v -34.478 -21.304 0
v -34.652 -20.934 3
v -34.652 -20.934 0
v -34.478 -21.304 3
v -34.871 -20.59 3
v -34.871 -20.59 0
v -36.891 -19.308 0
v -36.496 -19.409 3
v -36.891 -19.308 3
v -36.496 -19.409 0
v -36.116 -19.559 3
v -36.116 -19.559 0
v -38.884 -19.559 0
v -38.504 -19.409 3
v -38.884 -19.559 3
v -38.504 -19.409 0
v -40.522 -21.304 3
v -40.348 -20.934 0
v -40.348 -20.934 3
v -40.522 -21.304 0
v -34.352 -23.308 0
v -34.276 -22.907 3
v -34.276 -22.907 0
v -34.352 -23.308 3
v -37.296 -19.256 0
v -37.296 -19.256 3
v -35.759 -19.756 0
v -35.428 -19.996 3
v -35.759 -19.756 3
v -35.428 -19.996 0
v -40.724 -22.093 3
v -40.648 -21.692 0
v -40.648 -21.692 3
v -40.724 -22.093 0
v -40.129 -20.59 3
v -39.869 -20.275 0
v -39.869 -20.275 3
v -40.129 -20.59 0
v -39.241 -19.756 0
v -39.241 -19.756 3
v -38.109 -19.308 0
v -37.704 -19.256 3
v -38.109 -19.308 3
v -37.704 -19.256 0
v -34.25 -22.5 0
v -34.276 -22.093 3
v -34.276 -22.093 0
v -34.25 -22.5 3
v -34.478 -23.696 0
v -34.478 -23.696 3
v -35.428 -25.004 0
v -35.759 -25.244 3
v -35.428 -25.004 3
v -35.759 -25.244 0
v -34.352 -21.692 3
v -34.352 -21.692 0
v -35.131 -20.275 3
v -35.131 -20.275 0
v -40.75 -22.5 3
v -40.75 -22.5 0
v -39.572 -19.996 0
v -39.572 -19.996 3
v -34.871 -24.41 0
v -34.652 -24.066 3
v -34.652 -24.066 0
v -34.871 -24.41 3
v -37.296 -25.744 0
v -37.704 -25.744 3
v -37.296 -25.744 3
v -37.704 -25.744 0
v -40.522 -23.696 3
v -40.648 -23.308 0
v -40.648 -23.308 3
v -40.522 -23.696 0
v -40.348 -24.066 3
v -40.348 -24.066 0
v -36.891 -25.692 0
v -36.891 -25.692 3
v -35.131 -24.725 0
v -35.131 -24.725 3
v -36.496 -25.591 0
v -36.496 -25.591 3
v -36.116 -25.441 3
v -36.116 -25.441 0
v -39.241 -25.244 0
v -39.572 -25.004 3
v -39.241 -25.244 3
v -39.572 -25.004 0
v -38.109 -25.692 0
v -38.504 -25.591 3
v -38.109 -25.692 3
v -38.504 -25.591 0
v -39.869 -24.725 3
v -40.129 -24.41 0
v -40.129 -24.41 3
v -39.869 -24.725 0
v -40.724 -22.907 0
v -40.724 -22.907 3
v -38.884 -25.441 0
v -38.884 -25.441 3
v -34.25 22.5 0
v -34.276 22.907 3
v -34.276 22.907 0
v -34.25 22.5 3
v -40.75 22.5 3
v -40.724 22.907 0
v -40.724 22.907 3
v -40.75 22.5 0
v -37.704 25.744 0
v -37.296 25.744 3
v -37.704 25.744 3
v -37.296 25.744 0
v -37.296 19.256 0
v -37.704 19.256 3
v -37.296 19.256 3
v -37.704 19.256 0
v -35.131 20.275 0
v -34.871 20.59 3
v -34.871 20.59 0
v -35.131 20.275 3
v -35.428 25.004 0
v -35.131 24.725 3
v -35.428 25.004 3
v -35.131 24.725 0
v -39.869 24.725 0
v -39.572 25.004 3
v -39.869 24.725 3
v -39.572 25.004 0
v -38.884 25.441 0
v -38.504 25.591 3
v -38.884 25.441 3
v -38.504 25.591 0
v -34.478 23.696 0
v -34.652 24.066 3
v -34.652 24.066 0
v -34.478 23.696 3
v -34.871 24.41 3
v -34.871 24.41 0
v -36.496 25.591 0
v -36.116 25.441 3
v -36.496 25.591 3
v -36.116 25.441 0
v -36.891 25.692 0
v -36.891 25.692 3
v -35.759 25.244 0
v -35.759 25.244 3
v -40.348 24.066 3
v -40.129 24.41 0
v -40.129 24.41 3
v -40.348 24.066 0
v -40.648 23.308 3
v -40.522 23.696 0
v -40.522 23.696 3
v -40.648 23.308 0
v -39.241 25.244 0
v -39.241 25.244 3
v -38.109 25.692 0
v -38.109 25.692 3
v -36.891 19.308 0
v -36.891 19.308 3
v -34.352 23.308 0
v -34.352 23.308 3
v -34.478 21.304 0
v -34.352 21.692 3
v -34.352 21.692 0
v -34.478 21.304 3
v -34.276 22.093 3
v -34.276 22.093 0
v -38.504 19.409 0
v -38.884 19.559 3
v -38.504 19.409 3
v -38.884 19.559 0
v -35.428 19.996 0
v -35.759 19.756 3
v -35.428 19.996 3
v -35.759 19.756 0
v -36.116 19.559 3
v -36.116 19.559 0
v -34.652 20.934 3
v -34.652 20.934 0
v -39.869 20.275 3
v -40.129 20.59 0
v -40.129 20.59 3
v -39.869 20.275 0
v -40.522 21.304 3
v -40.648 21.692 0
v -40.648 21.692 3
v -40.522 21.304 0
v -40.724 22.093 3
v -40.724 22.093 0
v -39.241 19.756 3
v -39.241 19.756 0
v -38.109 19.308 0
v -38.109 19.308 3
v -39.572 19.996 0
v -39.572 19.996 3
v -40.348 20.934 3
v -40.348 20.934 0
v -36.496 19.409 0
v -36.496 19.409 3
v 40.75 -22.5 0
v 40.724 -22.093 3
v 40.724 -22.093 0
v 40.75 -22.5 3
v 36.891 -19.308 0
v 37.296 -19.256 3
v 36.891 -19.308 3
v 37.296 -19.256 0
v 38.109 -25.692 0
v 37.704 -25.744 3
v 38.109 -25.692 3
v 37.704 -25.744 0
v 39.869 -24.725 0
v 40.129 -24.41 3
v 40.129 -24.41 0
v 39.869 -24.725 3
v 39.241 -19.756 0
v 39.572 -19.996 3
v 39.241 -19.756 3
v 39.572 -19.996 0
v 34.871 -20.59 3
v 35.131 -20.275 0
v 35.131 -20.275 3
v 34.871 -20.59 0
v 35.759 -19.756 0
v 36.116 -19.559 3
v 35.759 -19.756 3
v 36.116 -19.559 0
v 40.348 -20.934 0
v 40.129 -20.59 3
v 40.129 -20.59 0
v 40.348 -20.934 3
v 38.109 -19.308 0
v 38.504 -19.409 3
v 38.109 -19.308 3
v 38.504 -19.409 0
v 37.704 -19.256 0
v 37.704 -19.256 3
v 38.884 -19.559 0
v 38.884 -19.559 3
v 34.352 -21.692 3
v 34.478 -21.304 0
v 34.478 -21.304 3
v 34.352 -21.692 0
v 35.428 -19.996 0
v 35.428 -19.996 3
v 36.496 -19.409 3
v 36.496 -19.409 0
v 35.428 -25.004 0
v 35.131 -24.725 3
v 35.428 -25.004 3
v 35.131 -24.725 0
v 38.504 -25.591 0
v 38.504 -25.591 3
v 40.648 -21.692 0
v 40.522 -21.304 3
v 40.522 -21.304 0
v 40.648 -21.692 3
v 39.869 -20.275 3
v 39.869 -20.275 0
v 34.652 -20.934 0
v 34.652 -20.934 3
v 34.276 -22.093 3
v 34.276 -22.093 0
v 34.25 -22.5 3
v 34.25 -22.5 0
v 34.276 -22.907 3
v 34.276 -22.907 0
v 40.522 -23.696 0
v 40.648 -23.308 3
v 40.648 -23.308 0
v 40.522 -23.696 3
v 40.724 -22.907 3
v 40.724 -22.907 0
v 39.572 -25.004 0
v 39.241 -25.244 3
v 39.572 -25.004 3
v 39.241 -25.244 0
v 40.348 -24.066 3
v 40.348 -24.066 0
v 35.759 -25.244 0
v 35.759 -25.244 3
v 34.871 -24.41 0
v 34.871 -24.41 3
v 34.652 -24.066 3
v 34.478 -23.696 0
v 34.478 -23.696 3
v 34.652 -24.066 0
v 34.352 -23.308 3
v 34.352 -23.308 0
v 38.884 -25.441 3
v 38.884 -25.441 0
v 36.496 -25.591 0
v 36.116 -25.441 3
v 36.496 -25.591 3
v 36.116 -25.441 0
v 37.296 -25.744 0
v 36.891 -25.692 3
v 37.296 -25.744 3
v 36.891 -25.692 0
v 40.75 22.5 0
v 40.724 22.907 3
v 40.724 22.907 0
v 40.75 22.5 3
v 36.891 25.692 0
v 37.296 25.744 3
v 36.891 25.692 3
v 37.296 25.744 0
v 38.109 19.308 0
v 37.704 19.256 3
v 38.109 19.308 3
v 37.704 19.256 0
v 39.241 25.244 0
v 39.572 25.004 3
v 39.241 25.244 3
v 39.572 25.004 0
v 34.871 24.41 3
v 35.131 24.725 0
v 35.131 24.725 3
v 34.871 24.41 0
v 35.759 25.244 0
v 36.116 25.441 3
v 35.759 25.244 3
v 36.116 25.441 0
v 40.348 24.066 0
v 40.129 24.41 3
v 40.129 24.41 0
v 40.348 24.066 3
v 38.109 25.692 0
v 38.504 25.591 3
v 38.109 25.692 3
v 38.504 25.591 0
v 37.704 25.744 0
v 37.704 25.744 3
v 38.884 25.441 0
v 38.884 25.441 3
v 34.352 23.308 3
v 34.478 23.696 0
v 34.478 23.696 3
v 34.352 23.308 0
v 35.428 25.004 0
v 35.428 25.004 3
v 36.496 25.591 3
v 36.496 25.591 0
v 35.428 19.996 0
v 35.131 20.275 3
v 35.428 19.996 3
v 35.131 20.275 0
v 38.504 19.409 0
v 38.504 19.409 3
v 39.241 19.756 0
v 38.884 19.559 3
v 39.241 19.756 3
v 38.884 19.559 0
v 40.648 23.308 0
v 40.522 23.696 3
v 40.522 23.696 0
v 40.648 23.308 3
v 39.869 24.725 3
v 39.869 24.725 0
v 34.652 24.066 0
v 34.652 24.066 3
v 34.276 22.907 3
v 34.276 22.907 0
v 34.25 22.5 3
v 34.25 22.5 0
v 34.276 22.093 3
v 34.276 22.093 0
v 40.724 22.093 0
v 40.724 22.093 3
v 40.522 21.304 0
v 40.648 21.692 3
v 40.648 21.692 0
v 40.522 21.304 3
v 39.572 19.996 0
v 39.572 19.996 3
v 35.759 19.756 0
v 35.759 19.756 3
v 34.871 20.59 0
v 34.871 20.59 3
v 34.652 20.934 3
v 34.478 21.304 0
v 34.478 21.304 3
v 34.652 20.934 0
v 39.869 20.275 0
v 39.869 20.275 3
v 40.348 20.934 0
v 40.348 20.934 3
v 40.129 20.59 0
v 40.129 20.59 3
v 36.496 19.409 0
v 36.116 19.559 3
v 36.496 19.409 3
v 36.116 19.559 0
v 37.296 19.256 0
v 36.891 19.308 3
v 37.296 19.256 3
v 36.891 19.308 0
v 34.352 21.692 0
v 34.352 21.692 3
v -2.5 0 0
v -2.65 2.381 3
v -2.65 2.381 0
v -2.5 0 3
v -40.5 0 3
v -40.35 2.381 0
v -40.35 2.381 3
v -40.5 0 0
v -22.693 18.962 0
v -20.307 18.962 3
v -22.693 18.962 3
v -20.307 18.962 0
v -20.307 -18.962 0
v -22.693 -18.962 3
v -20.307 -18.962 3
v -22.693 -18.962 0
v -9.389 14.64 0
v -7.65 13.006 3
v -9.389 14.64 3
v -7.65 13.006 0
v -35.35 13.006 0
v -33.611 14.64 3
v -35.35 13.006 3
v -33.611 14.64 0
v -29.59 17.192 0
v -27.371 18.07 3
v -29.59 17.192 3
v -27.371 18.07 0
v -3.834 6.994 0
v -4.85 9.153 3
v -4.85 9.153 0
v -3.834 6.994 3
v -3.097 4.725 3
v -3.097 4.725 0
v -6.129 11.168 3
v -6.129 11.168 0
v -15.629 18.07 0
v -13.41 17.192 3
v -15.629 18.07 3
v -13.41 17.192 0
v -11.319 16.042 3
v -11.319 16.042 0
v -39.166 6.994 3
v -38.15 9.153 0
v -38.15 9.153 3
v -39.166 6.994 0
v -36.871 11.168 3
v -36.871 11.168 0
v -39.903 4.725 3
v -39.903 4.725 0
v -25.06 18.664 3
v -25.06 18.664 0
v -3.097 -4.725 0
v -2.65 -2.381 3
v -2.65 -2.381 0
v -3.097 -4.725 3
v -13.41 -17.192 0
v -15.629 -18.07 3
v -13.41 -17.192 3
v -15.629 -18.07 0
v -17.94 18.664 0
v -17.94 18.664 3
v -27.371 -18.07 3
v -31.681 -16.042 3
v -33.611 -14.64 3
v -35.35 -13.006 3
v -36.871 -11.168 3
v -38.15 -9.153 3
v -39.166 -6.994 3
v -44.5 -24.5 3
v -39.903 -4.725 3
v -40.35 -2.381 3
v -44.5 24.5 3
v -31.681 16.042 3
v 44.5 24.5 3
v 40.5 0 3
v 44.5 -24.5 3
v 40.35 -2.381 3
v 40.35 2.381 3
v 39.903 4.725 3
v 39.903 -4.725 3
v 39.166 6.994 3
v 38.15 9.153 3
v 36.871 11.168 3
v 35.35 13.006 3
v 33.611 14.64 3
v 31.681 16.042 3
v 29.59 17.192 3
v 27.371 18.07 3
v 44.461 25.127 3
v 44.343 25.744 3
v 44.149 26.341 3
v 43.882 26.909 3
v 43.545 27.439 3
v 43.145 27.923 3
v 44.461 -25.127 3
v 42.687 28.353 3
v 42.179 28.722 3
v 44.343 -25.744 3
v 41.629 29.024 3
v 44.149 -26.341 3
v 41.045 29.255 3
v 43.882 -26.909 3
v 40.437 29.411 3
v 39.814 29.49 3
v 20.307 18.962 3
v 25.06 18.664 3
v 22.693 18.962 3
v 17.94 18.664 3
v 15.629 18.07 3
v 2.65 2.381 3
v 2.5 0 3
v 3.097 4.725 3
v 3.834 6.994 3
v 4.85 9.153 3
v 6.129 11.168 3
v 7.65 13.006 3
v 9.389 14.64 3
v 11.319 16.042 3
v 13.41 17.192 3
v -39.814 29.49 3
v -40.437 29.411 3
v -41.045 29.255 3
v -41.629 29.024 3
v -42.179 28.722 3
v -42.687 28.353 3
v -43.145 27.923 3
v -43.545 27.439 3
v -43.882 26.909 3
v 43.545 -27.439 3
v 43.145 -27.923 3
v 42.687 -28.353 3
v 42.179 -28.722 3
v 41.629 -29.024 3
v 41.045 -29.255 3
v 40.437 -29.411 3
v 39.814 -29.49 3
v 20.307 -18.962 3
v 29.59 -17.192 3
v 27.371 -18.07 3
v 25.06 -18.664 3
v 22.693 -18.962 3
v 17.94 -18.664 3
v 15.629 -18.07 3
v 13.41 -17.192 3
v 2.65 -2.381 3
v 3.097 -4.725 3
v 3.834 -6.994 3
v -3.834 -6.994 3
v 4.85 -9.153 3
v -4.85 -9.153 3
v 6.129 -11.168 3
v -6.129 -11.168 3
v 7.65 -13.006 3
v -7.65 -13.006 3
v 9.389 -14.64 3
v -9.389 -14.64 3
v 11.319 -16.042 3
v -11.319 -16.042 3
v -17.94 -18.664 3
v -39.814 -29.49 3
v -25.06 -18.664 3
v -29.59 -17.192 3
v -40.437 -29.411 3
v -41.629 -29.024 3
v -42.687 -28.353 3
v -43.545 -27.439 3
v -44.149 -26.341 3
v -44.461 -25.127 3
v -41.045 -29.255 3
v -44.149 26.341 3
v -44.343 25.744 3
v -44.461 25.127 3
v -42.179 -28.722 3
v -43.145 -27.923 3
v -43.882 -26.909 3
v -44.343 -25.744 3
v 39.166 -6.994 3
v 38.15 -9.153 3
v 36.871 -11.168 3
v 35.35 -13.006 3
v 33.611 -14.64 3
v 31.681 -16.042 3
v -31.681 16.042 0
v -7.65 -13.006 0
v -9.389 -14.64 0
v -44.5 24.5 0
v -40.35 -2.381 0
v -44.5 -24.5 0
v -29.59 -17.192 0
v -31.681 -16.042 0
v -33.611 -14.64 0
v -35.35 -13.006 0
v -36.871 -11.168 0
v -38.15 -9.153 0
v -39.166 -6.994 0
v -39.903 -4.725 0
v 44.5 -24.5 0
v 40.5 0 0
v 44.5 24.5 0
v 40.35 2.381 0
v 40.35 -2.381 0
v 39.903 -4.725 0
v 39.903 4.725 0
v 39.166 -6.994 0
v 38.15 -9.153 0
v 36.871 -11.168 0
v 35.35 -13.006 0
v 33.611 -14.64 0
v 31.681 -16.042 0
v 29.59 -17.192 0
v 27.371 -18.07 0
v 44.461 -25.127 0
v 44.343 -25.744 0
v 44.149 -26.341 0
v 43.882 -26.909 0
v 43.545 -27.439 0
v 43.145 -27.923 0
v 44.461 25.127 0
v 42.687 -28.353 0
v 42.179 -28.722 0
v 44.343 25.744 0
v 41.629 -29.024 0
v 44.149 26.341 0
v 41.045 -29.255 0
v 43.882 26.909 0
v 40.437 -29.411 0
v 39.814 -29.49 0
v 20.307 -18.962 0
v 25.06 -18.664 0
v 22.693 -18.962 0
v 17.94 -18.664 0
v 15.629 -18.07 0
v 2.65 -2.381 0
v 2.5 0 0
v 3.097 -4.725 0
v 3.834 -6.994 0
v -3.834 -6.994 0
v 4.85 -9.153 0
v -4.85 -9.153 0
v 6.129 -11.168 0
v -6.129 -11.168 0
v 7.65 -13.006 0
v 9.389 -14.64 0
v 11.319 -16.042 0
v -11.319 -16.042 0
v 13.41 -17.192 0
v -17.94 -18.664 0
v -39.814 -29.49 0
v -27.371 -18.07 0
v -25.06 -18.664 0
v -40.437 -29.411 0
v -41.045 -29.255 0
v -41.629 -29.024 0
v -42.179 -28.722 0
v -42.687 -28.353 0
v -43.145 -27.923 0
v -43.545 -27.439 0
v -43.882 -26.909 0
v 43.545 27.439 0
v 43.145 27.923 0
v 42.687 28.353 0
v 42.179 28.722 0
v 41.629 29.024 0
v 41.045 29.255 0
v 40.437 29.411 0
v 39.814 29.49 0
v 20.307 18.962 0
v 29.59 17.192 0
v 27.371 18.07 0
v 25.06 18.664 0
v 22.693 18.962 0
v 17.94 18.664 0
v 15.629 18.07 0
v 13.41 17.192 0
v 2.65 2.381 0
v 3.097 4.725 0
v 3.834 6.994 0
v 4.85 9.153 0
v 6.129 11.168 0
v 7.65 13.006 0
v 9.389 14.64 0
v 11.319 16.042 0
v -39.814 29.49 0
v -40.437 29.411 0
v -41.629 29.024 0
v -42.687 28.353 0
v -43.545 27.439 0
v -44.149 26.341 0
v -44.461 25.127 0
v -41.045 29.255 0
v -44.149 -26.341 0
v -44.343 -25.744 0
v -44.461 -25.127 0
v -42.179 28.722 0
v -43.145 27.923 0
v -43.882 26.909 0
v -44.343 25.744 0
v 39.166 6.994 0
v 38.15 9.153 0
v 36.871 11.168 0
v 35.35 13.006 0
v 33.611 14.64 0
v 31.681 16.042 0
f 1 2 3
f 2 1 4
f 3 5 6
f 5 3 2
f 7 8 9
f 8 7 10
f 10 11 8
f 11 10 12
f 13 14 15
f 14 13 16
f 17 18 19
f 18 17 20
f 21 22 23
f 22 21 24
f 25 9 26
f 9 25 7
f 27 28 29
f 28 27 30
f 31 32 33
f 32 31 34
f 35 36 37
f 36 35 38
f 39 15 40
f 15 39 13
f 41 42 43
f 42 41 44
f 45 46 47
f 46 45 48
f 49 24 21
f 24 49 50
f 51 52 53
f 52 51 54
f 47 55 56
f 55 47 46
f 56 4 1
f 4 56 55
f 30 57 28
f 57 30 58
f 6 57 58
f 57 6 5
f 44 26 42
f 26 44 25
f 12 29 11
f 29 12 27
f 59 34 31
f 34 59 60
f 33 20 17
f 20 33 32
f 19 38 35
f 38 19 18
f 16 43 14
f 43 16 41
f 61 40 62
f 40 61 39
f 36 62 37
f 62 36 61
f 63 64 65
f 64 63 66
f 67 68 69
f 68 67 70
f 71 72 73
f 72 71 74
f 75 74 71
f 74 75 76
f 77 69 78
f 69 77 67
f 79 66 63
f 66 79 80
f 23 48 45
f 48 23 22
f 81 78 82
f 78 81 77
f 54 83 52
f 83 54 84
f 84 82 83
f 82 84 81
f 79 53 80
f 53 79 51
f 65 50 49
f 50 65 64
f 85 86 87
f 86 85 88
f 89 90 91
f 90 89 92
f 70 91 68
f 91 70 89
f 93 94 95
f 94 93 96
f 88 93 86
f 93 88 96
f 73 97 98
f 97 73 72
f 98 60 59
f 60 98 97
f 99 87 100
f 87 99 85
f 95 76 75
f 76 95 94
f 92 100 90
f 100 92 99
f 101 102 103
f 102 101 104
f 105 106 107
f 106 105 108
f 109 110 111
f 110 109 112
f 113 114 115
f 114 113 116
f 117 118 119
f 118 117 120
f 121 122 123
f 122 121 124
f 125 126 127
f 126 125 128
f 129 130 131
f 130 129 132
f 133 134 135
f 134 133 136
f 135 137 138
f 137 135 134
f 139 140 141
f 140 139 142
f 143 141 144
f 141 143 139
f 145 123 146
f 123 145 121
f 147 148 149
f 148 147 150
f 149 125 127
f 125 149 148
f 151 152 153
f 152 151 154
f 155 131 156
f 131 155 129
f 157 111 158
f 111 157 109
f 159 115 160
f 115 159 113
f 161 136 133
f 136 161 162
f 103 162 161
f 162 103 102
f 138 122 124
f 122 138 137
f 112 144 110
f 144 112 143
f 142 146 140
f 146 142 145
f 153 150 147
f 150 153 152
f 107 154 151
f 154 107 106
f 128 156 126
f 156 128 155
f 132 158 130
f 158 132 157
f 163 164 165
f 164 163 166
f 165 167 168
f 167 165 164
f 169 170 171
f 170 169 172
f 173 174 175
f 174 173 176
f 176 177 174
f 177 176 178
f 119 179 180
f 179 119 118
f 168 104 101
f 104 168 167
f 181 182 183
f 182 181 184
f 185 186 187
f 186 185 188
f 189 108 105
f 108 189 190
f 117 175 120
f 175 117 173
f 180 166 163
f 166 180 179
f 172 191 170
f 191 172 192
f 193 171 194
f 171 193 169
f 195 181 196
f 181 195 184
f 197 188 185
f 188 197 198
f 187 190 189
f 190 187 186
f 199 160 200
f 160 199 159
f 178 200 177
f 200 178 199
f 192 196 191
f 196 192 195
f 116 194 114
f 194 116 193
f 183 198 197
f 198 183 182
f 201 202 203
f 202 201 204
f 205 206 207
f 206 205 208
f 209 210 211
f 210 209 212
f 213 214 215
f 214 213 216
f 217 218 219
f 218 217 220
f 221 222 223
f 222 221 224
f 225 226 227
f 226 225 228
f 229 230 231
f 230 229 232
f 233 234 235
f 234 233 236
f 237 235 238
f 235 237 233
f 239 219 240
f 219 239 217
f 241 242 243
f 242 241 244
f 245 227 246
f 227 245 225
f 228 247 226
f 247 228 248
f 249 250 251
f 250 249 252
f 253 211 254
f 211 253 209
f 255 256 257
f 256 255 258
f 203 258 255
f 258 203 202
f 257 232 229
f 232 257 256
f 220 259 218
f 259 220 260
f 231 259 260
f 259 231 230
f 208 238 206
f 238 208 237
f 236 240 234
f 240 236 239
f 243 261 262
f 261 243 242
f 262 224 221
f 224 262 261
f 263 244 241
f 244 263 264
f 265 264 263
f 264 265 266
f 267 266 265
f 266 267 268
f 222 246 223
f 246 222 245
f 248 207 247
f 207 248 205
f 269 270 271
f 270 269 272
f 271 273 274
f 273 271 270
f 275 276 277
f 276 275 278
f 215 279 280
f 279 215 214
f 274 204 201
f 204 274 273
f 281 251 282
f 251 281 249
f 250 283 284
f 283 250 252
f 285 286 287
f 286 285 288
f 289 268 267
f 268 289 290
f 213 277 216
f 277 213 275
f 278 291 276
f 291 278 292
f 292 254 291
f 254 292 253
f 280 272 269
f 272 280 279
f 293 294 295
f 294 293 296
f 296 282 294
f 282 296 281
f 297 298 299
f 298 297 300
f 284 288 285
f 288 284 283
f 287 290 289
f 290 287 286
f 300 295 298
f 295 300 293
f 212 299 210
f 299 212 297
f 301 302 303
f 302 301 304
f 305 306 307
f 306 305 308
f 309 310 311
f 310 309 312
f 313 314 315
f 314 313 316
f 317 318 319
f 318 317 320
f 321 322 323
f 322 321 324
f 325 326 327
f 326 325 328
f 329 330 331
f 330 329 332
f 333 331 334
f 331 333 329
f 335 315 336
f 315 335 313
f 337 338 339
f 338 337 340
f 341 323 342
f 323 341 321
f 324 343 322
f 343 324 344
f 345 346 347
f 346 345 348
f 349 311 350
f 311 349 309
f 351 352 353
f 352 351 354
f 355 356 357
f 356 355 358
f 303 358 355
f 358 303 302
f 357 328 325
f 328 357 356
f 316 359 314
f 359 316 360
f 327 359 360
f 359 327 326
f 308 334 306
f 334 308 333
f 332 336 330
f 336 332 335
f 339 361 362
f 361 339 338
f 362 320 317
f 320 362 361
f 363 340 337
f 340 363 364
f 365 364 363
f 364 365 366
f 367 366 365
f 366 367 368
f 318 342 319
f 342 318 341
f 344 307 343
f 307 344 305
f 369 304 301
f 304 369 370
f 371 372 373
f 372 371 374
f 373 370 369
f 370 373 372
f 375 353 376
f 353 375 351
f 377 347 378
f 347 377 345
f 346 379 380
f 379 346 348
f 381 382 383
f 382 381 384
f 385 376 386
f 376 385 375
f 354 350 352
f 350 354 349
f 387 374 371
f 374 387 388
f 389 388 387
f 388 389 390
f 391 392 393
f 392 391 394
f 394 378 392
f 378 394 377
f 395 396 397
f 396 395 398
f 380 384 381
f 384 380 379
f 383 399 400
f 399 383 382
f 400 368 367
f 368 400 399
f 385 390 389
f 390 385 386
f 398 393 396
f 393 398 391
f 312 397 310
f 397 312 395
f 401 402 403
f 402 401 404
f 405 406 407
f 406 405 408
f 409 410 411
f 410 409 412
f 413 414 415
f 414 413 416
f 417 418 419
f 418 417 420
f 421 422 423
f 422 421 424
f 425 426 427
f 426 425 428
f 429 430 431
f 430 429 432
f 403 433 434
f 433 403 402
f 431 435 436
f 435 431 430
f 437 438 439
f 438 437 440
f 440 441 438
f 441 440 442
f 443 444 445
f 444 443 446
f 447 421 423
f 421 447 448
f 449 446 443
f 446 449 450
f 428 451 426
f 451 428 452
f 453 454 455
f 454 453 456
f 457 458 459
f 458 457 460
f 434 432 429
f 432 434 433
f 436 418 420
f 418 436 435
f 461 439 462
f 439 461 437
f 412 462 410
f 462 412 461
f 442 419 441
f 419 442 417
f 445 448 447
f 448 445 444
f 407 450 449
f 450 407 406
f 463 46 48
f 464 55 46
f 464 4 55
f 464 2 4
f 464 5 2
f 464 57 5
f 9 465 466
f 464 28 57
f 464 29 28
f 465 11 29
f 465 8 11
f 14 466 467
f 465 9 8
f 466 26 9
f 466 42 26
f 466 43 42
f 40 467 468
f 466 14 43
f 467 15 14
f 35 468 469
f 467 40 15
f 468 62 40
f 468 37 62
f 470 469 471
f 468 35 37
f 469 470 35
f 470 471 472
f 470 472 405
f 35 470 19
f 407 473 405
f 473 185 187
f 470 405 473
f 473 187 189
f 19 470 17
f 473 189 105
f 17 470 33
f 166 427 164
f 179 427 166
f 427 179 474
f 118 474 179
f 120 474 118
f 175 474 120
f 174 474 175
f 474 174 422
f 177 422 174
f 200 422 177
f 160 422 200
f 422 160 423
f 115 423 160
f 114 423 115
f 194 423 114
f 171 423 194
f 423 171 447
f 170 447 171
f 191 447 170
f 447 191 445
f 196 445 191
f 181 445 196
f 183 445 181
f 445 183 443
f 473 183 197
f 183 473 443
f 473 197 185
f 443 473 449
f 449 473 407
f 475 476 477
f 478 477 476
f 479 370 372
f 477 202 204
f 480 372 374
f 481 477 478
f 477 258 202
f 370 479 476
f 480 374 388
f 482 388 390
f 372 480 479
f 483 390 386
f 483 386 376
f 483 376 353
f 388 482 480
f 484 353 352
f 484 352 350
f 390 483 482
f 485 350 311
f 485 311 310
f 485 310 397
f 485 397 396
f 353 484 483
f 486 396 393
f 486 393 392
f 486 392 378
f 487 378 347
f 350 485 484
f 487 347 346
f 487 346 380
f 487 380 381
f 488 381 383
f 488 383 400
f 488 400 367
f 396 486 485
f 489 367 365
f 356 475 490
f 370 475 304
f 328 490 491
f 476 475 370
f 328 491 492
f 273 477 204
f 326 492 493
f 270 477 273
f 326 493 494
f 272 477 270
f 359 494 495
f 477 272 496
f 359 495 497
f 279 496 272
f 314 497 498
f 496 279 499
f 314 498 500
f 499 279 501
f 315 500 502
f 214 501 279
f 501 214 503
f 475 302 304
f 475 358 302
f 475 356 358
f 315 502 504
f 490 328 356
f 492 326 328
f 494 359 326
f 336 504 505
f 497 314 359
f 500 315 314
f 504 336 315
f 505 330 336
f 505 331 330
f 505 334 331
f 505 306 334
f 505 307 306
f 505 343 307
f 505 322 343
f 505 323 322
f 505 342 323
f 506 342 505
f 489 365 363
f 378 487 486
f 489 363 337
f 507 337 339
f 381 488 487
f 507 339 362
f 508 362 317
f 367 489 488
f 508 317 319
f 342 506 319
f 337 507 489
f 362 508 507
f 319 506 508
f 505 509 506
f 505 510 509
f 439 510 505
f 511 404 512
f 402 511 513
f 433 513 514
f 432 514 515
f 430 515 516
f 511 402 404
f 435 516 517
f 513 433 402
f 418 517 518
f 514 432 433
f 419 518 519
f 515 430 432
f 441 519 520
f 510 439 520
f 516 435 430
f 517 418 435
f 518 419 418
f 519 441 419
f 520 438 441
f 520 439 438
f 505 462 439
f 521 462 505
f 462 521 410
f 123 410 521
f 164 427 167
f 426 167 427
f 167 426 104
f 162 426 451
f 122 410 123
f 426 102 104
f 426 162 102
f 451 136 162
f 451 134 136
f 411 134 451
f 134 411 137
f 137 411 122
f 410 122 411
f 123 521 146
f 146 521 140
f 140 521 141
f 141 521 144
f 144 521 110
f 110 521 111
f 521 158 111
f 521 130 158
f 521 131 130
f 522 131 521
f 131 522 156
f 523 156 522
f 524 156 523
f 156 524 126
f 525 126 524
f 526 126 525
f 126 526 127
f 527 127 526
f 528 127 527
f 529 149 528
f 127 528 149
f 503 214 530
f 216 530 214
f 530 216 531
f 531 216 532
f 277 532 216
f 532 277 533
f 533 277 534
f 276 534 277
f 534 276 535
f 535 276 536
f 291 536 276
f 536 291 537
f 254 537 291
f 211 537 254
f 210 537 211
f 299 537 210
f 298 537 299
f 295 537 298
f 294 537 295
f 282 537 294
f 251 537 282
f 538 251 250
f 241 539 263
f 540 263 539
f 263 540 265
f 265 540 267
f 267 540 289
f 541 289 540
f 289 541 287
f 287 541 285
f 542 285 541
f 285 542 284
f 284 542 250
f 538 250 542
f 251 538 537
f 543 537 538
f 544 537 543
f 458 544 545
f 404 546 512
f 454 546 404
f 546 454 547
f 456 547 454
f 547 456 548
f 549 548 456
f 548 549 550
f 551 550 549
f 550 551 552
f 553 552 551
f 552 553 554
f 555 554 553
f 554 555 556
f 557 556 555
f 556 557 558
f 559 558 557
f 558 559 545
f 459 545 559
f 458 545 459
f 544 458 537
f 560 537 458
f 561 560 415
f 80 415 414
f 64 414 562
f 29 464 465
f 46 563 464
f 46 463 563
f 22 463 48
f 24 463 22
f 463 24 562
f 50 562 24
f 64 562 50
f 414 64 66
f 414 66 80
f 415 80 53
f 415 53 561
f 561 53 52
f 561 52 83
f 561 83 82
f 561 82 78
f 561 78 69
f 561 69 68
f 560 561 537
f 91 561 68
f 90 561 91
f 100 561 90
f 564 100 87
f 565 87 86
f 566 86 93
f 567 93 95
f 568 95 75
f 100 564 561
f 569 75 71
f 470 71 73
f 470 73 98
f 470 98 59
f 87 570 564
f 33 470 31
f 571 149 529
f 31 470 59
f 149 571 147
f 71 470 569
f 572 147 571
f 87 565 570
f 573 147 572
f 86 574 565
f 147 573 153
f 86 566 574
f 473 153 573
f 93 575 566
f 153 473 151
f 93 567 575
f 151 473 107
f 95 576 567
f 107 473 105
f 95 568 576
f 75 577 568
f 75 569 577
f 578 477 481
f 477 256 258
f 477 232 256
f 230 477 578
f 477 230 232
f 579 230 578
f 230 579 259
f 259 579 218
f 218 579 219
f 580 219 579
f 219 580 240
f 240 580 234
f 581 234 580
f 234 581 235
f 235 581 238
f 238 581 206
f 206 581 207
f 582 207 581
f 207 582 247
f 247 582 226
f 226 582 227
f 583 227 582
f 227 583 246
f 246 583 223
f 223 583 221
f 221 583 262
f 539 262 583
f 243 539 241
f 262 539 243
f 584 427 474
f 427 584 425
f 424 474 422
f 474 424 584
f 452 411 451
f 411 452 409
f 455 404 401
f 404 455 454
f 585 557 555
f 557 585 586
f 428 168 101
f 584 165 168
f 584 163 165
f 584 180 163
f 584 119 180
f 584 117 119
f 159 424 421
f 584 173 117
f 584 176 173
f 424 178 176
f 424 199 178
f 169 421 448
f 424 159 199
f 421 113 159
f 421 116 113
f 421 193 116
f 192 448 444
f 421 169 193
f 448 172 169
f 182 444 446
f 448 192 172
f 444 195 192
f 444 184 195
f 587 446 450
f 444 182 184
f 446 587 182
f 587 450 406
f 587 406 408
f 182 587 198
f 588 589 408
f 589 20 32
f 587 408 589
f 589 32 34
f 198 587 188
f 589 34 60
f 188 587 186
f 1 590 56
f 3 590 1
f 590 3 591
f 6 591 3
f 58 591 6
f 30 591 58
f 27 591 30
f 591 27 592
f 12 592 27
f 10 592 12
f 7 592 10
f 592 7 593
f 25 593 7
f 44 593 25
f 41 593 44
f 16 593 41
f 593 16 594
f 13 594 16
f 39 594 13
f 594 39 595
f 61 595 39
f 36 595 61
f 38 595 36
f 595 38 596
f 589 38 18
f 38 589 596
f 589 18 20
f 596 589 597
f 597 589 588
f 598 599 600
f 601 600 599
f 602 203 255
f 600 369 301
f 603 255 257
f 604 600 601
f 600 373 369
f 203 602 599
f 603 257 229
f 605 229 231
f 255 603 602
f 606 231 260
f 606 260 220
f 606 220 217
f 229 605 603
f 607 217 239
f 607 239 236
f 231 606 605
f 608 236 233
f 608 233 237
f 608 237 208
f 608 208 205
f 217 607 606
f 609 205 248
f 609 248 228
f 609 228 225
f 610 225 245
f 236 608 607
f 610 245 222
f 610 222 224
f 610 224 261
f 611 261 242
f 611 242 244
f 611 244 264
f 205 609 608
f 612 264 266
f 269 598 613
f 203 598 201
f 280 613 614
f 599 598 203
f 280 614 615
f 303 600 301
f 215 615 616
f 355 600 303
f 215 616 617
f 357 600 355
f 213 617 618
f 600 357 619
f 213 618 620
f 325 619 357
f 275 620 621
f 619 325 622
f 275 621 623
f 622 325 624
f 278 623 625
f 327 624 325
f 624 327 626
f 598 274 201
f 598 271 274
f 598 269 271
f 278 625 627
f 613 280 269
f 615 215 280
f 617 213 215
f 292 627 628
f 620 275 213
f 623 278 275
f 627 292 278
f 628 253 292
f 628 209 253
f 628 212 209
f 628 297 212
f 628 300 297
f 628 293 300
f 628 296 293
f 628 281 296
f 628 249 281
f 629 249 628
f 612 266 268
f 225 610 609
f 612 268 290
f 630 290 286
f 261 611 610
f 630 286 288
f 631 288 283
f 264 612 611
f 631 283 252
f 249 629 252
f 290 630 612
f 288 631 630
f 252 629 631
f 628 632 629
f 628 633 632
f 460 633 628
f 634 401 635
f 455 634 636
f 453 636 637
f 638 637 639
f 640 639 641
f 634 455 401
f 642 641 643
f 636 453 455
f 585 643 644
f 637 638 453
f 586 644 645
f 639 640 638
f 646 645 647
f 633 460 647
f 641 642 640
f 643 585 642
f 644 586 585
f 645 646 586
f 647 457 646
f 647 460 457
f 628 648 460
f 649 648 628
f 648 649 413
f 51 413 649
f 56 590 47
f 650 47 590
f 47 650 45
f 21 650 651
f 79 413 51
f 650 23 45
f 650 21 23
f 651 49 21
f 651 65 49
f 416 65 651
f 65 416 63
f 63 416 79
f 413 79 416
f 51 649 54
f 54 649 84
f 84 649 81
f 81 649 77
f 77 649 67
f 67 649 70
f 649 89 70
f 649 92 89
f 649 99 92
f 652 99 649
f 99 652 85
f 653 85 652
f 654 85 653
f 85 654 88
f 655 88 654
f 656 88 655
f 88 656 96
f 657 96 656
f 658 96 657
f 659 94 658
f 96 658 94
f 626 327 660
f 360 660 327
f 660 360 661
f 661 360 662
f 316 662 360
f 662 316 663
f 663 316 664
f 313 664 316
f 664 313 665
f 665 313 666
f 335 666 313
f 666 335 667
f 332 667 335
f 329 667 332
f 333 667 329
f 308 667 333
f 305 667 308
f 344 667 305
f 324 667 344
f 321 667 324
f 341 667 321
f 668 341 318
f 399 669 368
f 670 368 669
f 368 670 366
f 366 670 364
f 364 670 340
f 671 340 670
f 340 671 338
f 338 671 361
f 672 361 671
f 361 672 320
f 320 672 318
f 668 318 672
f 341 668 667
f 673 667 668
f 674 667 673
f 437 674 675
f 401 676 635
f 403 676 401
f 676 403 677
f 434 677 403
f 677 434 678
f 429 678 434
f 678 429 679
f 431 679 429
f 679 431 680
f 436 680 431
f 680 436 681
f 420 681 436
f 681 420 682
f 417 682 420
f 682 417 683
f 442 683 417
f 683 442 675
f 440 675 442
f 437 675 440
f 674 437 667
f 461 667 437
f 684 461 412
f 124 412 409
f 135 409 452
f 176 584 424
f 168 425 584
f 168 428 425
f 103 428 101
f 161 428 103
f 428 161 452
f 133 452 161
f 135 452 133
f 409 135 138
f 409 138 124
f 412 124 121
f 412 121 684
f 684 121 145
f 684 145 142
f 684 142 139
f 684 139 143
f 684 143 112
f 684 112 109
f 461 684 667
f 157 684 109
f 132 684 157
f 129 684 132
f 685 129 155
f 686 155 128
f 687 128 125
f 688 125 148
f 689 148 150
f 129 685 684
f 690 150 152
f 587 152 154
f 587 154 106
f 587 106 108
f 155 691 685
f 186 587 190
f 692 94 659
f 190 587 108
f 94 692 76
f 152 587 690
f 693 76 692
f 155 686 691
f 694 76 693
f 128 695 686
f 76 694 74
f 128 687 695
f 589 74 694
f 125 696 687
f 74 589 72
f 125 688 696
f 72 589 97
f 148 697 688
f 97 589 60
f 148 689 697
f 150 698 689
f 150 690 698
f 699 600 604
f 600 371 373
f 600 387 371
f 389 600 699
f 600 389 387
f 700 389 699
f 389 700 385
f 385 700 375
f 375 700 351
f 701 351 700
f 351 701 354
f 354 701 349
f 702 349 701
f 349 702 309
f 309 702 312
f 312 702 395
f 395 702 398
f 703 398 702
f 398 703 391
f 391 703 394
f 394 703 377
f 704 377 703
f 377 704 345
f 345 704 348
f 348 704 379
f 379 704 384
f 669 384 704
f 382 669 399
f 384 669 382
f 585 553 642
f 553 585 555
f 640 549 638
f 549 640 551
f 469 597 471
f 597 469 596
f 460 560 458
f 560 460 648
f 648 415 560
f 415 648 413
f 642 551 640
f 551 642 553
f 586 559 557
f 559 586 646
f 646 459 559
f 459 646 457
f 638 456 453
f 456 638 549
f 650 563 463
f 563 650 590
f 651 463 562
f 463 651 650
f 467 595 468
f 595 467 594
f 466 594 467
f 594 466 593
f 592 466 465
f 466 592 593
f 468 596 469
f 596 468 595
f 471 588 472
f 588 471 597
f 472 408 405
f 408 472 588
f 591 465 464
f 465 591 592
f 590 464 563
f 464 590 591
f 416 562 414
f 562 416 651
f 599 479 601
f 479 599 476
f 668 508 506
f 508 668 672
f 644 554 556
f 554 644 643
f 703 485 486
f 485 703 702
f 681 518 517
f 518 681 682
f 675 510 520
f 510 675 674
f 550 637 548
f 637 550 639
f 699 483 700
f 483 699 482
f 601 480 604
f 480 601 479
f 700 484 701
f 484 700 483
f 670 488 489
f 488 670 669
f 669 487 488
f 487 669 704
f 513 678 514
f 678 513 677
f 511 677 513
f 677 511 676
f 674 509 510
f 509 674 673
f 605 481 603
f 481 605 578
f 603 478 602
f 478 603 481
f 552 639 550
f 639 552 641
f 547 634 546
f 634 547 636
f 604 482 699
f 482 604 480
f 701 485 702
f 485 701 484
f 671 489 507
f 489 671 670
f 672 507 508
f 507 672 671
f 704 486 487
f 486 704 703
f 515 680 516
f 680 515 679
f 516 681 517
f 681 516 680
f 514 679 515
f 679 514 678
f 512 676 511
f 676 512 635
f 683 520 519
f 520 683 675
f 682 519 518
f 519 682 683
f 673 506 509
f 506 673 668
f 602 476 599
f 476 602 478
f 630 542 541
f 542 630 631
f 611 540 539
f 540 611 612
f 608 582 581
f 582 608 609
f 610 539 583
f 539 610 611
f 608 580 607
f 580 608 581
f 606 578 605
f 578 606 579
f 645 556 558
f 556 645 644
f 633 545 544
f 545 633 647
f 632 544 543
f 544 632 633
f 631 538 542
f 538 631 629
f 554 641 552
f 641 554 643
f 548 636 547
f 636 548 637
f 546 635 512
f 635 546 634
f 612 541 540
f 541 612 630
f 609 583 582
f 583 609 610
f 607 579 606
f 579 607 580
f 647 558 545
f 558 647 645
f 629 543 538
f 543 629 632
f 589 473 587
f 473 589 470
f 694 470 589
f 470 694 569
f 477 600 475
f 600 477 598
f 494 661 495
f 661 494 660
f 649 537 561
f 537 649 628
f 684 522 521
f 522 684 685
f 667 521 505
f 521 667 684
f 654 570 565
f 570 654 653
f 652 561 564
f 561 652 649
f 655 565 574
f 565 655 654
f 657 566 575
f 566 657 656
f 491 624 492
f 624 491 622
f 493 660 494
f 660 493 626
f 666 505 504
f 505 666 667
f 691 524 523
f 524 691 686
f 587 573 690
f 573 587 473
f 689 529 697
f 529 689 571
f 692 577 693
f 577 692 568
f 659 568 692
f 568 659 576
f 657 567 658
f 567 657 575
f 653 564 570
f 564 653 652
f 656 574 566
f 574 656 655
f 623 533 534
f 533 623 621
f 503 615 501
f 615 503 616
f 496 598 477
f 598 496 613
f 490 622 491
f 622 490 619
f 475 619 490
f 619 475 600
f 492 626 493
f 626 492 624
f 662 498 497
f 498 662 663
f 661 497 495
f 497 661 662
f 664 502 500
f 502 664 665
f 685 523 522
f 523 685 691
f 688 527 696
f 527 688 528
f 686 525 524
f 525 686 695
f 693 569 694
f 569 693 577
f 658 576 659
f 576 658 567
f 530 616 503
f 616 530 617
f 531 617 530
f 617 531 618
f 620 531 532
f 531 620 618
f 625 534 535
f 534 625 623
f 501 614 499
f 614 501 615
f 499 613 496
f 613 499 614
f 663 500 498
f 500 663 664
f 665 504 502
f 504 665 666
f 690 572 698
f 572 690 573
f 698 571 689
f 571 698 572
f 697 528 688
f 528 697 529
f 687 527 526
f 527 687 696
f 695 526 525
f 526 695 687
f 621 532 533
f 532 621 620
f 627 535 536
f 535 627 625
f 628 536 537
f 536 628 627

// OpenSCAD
$fn = 50;


difference() {
	union() {
		hull() {
			translate(v = [-39.5000000000, 24.5000000000, 0]) {
				cylinder(h = 3, r = 5);
			}
			translate(v = [39.5000000000, 24.5000000000, 0]) {
				cylinder(h = 3, r = 5);
			}
			translate(v = [-39.5000000000, -24.5000000000, 0]) {
				cylinder(h = 3, r = 5);
			}
			translate(v = [39.5000000000, -24.5000000000, 0]) {
				cylinder(h = 3, r = 5);
			}
		}
	}
	union() {
		#translate(v = [-37.5000000000, -22.5000000000, -100.0000000000]) {
			cylinder(h = 200, r = 3.2500000000);
		}
		#translate(v = [-37.5000000000, 22.5000000000, -100.0000000000]) {
			cylinder(h = 200, r = 3.2500000000);
		}
		#translate(v = [37.5000000000, -22.5000000000, -100.0000000000]) {
			cylinder(h = 200, r = 3.2500000000);
		}
		#translate(v = [37.5000000000, 22.5000000000, -100.0000000000]) {
			cylinder(h = 200, r = 3.2500000000);
		}
		#translate(v = [-21.5000000000, 0, 0]) {
			cylinder(h = 3, r = 19.0000000000);
		}
		#translate(v = [21.5000000000, 0, 0]) {
			cylinder(h = 3, r = 19.0000000000);
		}
	}
}
